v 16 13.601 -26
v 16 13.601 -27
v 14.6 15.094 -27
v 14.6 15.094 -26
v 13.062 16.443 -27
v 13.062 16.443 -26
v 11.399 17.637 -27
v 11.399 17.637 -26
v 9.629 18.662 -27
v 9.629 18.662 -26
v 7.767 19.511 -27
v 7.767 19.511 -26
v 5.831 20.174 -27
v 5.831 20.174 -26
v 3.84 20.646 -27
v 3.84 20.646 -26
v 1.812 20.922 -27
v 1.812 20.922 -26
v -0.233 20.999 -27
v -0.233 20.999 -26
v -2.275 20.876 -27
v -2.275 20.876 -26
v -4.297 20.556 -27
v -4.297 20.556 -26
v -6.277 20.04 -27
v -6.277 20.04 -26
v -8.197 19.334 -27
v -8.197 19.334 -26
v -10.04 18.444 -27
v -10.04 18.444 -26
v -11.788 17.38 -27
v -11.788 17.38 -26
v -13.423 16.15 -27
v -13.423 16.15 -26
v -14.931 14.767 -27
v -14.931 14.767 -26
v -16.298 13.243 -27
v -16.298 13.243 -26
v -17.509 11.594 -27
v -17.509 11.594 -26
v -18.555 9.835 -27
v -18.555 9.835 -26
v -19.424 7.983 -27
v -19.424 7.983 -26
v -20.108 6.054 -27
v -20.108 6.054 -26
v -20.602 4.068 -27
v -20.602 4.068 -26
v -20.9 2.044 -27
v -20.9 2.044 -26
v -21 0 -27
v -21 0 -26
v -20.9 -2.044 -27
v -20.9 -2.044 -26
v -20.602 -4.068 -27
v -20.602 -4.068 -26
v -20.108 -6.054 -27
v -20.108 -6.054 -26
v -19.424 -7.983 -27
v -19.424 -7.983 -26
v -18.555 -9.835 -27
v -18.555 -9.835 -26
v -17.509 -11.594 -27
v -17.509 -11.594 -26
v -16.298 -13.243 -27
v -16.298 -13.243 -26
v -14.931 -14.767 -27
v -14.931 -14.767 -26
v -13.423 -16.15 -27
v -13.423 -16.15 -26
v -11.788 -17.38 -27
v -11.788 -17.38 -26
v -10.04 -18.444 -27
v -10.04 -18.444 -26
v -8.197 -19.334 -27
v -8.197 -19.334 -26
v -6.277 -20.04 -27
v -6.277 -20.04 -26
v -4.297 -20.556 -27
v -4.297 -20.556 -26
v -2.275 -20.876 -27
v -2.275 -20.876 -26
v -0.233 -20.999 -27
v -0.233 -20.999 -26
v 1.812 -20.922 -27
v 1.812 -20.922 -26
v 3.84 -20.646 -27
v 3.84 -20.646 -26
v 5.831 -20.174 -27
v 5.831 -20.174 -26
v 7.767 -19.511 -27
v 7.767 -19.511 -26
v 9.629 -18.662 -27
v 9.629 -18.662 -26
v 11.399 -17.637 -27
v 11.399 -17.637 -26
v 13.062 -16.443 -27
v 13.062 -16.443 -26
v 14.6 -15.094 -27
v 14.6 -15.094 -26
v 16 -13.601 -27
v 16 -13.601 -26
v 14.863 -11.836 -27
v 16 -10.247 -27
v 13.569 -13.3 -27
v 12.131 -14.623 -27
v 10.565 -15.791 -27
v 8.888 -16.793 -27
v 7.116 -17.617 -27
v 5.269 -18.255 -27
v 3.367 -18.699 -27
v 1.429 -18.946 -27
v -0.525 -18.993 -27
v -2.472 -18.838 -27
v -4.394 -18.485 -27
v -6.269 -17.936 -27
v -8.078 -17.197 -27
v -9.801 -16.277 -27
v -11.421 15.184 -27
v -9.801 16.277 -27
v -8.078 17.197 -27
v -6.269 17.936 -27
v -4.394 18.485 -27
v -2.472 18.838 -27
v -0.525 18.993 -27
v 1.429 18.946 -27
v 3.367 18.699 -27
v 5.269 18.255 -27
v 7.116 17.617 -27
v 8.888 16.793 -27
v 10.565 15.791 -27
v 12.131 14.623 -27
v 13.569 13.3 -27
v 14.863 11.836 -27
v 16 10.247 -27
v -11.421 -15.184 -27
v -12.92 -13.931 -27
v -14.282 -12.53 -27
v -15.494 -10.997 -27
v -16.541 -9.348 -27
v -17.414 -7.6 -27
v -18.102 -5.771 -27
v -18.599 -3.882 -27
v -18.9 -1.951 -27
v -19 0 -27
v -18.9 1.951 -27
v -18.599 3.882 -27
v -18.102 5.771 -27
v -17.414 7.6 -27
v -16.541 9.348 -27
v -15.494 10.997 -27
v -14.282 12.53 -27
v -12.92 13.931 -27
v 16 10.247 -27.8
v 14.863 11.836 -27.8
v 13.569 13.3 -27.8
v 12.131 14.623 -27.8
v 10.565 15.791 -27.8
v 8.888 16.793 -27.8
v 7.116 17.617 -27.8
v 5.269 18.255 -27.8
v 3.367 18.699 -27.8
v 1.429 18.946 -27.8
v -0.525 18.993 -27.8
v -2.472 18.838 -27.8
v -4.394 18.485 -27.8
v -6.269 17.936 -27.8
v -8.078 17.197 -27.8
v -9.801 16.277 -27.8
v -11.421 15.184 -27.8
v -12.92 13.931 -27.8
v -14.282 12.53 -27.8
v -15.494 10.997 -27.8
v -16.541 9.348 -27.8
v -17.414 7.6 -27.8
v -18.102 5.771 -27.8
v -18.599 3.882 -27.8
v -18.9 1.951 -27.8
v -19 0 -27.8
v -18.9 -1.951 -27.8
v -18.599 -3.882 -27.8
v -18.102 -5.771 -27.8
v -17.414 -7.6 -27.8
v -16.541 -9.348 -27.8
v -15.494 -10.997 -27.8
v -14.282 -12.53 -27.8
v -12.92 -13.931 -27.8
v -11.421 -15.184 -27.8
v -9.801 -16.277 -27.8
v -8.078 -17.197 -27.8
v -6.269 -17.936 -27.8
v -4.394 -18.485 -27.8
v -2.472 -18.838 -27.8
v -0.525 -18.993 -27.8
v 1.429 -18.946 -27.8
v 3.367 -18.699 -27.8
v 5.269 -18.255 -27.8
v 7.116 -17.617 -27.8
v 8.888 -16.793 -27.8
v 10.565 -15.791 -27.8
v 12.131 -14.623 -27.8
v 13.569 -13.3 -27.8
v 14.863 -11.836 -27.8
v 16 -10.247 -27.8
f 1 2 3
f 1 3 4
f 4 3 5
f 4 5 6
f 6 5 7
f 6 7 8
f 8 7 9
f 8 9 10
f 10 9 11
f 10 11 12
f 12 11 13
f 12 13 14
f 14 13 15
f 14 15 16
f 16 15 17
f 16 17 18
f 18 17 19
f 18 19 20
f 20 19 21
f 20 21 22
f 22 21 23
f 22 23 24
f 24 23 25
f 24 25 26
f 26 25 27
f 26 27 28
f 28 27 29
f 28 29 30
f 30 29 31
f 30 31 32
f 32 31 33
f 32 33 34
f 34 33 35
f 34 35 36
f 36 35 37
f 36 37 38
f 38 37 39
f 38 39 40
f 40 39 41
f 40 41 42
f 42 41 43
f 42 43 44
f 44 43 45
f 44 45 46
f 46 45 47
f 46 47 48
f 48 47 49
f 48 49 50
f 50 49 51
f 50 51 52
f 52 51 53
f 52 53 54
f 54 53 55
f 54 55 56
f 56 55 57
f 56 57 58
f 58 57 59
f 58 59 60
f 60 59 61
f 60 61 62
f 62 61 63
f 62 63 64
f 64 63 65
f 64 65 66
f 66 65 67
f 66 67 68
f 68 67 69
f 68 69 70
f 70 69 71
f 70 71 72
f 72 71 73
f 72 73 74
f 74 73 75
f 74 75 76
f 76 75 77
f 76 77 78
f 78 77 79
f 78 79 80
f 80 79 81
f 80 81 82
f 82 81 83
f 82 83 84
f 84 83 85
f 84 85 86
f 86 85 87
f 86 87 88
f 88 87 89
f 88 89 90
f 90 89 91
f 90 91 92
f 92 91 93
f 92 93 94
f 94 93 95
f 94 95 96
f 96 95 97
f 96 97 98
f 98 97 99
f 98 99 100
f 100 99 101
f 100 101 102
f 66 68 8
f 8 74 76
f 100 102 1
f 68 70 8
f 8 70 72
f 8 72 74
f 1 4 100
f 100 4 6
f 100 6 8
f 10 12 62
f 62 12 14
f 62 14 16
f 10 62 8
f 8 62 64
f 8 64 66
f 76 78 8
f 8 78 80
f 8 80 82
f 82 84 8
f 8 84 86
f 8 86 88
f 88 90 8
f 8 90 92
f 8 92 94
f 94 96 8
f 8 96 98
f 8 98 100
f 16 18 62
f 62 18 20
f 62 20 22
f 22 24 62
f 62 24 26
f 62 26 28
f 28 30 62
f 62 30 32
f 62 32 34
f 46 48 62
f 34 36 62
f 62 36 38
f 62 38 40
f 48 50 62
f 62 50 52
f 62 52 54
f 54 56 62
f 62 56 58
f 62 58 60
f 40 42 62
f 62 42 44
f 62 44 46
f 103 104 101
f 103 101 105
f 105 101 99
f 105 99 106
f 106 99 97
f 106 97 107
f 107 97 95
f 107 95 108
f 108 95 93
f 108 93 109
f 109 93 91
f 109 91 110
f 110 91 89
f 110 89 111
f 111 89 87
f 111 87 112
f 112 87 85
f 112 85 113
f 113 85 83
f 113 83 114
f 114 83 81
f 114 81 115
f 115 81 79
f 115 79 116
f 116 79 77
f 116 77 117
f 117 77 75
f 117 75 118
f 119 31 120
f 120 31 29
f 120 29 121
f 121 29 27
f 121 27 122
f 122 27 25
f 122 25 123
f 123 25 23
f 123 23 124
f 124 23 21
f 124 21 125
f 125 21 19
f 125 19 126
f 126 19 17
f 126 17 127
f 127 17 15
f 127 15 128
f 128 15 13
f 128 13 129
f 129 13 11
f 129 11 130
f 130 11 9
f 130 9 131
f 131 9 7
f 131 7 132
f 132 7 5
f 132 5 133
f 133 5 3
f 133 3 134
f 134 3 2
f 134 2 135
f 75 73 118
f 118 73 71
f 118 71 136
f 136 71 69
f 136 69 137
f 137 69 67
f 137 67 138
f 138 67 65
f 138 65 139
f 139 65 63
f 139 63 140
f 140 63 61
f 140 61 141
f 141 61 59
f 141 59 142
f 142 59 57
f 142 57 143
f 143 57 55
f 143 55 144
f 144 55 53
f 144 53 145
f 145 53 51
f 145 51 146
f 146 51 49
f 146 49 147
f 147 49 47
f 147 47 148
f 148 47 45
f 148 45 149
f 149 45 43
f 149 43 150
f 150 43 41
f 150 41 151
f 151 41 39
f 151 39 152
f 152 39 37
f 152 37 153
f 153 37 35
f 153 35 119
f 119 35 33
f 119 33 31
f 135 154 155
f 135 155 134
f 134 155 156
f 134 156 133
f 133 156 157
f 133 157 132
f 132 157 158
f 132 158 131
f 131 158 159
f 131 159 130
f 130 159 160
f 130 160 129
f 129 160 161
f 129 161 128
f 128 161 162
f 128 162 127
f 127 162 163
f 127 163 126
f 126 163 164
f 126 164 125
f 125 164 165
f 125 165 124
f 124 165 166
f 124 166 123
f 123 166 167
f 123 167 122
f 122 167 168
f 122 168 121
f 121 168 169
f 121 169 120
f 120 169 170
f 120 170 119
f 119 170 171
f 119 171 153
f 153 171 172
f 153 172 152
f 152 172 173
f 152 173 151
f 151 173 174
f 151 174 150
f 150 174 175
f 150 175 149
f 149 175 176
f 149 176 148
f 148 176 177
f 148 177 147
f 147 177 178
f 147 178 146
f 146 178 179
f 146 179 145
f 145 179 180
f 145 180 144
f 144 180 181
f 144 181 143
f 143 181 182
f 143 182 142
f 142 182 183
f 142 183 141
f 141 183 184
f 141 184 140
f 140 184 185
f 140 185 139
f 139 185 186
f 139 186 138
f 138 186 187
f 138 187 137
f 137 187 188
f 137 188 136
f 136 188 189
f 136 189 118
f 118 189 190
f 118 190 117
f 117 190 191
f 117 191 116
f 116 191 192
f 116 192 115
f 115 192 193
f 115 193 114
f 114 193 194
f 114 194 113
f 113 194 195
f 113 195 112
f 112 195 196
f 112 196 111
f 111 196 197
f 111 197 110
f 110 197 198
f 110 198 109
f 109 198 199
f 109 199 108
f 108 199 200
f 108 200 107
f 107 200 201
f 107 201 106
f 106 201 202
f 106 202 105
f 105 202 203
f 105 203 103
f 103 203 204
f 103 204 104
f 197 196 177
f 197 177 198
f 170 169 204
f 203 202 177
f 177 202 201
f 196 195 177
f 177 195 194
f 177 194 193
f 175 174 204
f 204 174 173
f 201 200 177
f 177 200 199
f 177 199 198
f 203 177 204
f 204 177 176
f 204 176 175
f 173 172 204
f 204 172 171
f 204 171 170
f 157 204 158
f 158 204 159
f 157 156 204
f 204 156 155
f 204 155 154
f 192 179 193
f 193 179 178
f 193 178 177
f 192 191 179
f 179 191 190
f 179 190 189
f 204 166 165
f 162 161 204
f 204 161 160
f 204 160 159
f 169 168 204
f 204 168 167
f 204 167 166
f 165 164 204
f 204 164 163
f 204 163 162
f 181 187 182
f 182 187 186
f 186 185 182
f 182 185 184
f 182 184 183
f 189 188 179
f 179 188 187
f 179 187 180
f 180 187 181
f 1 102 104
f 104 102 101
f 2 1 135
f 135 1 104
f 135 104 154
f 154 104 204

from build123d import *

# Parameters (mm, degrees)
BOSS_EXTRUDE1_START     = -27
SKETCH1_R               = 21
BOSS_EXTRUDE1_DEPTH     = 1
BOSS_EXTRUDE2_START     = -27.8
SKETCH2_R               = 19
BOSS_EXTRUDE2_DEPTH     = 0.8
CUT_EXTRUDE1_DEPTH      = 41.67972468
CUT_EXTRUDE1_DEPTH_BACK = 41.67972468
SKETCH3_W               = 14
SKETCH3_H               = 60


with BuildPart() as part:
    # Sketch1 → Boss-Extrude1 (new body)
    with BuildSketch(Plane.XY.offset(BOSS_EXTRUDE1_START)):
        Circle(SKETCH1_R)
    extrude(amount=BOSS_EXTRUDE1_DEPTH)

    # Sketch2 → Boss-Extrude2 (add)
    with BuildSketch(Plane.XY.offset(BOSS_EXTRUDE2_START)):
        Circle(SKETCH2_R)
    extrude(amount=BOSS_EXTRUDE2_DEPTH)

    # Sketch3 → Cut-Extrude1 (cut, two sides: drawn at the far end of the back side and taken through both)
    with BuildSketch(Plane.XY.offset(-CUT_EXTRUDE1_DEPTH_BACK)):
        with Locations((23, 0)):
            Rectangle(SKETCH3_W, SKETCH3_H)
    extrude(amount=CUT_EXTRUDE1_DEPTH + CUT_EXTRUDE1_DEPTH_BACK, mode=Mode.SUBTRACT)


solid = part.part
